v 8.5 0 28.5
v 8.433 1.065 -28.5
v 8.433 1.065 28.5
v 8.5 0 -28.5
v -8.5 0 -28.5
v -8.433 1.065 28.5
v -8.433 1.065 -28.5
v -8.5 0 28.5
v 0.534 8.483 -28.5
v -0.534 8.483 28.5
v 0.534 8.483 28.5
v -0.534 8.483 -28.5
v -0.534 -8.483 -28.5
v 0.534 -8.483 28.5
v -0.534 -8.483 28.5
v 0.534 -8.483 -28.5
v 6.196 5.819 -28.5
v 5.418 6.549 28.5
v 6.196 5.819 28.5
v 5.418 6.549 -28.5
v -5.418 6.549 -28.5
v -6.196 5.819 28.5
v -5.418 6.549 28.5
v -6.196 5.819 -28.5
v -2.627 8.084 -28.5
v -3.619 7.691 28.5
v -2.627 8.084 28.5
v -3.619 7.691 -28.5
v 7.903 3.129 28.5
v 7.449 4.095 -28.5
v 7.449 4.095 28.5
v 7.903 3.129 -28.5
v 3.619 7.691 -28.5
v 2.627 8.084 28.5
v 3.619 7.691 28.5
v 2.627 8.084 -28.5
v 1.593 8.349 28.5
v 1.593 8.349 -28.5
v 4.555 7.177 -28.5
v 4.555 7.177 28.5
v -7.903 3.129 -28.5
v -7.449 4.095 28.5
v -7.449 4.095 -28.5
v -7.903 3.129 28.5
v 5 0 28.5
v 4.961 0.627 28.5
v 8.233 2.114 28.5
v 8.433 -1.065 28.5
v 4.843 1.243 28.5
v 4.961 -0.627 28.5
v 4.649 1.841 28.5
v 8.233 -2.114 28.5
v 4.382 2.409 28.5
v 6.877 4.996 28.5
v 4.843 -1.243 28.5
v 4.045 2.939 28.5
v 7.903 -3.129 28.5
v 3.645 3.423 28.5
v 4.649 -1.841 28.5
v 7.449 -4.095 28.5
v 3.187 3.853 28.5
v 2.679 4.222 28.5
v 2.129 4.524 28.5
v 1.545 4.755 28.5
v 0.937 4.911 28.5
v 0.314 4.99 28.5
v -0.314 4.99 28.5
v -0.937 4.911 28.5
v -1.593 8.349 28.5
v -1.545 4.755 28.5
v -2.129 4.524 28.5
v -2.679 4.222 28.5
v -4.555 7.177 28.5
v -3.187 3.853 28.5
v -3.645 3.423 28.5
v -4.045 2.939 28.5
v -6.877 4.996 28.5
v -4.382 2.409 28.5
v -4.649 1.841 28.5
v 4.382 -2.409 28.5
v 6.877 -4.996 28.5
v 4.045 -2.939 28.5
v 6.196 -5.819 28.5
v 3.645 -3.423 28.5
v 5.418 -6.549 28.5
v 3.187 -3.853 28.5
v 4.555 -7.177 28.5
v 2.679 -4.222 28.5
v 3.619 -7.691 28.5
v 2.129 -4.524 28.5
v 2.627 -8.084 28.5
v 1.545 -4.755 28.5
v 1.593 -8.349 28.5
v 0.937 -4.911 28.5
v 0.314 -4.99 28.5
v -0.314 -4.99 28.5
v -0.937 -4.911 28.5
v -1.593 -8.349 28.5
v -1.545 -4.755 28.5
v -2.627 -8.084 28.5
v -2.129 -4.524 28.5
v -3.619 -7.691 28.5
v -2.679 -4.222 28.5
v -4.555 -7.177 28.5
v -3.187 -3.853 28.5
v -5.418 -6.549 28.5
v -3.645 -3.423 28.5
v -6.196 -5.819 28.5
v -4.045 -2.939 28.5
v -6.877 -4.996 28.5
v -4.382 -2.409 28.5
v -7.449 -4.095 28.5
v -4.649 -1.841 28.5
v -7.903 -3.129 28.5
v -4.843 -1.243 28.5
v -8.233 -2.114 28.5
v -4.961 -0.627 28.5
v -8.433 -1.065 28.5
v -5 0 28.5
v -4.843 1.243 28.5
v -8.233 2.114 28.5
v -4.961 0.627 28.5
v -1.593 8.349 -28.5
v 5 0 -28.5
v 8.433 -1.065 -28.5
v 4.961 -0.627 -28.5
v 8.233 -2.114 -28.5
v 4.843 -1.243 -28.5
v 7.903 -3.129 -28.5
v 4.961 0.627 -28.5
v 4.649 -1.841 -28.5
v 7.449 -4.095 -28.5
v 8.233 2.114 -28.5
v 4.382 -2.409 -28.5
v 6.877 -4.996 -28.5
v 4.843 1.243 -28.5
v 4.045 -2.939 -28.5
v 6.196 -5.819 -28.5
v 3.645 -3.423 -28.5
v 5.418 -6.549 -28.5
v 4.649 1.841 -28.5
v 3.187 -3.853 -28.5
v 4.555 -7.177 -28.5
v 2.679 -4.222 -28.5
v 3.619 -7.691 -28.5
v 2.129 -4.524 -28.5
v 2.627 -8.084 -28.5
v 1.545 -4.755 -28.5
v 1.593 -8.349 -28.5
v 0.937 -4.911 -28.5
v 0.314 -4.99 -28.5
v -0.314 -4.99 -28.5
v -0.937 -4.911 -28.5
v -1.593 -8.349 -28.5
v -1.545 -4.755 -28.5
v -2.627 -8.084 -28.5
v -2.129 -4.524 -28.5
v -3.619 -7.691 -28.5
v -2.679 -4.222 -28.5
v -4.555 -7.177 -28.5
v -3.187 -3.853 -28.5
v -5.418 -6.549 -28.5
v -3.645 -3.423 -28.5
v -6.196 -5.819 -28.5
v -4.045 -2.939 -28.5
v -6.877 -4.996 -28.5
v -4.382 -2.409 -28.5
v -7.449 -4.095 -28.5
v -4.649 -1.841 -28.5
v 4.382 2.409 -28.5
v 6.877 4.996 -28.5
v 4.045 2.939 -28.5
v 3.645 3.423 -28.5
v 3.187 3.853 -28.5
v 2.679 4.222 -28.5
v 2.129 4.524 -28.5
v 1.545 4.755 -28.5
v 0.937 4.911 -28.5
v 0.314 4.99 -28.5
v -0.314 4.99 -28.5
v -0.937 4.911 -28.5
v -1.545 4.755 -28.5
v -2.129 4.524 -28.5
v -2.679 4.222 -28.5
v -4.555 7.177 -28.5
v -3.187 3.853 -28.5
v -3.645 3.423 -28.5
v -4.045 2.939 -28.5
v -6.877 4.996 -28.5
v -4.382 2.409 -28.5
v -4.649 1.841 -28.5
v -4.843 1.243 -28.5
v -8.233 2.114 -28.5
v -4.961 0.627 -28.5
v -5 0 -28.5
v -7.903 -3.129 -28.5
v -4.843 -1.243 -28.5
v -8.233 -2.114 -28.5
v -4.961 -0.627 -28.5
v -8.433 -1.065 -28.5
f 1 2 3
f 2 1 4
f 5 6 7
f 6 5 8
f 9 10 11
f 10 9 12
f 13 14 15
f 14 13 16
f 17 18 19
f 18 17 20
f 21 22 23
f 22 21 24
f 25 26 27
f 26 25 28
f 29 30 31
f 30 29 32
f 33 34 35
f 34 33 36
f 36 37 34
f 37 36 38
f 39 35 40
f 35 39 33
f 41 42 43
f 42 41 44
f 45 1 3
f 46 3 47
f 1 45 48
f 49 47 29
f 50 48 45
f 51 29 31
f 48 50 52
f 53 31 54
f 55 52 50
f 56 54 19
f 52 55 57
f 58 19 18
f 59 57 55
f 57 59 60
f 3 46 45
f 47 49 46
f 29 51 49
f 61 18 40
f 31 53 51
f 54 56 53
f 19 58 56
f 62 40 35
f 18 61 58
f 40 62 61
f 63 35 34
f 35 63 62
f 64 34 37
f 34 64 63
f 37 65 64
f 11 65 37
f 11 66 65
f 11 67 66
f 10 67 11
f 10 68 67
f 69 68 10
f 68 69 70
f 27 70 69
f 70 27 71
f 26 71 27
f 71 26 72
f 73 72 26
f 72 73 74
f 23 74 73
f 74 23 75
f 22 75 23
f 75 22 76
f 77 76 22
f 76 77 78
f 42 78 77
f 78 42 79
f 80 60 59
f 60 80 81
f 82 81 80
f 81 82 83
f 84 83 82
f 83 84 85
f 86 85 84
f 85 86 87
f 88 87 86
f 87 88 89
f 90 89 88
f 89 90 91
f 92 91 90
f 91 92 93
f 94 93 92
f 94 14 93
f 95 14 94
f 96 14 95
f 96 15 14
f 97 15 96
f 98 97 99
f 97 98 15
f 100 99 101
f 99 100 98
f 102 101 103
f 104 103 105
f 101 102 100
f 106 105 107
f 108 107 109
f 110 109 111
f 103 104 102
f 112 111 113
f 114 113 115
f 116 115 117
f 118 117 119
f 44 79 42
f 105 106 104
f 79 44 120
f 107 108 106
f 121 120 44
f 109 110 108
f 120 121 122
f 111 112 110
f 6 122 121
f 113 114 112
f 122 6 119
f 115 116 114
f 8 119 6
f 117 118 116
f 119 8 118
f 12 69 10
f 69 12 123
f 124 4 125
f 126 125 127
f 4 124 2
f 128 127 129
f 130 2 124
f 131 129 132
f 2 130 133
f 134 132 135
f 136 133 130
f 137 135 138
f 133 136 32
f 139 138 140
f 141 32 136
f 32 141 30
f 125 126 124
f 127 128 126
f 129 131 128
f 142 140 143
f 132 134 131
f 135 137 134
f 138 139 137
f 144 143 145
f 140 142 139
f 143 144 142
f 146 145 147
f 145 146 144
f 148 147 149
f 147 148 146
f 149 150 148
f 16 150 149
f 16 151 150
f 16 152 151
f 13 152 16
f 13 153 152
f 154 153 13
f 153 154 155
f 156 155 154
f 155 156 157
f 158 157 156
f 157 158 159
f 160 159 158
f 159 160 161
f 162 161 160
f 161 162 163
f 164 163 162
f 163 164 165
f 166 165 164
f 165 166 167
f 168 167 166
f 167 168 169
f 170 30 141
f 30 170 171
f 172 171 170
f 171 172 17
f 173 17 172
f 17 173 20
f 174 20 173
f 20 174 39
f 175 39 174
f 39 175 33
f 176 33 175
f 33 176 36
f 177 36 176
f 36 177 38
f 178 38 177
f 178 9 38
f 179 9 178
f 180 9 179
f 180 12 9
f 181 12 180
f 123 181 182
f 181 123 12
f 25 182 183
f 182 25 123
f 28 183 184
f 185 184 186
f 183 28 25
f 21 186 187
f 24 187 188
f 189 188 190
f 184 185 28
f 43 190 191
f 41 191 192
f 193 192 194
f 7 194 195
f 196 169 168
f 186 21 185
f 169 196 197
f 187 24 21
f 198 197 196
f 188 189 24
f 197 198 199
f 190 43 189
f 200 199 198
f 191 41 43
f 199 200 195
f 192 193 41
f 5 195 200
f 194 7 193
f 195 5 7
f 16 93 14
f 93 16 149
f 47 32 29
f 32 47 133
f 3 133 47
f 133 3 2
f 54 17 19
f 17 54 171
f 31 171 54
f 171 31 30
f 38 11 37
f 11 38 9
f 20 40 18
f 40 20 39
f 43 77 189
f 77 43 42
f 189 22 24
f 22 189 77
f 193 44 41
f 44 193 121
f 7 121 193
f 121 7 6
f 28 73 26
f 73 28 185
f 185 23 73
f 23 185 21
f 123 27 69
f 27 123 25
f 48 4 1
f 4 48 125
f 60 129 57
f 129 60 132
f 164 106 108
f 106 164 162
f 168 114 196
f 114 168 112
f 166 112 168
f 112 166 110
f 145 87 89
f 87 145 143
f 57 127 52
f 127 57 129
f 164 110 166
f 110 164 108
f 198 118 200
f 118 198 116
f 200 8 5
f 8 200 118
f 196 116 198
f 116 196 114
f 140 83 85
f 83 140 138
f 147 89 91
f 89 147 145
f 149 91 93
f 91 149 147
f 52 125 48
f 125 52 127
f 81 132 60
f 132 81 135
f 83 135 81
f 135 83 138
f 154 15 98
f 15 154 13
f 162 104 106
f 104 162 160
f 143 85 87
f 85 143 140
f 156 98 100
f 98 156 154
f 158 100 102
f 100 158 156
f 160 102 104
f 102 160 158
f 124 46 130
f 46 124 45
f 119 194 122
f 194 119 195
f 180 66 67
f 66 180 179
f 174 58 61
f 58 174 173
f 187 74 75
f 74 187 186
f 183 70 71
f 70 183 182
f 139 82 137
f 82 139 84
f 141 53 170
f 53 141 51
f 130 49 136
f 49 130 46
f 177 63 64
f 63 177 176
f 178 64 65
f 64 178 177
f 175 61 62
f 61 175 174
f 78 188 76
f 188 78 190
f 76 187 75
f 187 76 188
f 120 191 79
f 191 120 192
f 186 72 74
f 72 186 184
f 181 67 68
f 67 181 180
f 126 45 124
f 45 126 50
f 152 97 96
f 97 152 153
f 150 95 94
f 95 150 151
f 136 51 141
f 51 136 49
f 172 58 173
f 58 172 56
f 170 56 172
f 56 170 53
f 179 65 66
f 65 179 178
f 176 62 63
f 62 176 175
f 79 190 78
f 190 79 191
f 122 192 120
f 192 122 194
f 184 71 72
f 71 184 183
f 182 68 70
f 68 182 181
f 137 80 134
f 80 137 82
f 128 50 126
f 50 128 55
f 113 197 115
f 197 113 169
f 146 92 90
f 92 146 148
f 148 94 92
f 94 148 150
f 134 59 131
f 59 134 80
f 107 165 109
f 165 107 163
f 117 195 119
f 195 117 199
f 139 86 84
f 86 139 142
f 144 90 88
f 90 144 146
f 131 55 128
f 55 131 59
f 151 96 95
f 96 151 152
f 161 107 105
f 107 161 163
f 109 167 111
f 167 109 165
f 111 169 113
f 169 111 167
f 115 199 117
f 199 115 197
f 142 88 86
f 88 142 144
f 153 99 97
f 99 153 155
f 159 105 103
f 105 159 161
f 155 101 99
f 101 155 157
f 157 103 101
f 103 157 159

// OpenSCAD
$fn = 50;


difference() {
	union() {
		translate(v = [0, 0, -28.5000000000]) {
			cylinder(h = 57, r = 8.5000000000);
		}
	}
	union() {
		translate(v = [0, 0, -100.0000000000]) {
			cylinder(h = 200, r = 5.0000000000);
		}
	}
}
